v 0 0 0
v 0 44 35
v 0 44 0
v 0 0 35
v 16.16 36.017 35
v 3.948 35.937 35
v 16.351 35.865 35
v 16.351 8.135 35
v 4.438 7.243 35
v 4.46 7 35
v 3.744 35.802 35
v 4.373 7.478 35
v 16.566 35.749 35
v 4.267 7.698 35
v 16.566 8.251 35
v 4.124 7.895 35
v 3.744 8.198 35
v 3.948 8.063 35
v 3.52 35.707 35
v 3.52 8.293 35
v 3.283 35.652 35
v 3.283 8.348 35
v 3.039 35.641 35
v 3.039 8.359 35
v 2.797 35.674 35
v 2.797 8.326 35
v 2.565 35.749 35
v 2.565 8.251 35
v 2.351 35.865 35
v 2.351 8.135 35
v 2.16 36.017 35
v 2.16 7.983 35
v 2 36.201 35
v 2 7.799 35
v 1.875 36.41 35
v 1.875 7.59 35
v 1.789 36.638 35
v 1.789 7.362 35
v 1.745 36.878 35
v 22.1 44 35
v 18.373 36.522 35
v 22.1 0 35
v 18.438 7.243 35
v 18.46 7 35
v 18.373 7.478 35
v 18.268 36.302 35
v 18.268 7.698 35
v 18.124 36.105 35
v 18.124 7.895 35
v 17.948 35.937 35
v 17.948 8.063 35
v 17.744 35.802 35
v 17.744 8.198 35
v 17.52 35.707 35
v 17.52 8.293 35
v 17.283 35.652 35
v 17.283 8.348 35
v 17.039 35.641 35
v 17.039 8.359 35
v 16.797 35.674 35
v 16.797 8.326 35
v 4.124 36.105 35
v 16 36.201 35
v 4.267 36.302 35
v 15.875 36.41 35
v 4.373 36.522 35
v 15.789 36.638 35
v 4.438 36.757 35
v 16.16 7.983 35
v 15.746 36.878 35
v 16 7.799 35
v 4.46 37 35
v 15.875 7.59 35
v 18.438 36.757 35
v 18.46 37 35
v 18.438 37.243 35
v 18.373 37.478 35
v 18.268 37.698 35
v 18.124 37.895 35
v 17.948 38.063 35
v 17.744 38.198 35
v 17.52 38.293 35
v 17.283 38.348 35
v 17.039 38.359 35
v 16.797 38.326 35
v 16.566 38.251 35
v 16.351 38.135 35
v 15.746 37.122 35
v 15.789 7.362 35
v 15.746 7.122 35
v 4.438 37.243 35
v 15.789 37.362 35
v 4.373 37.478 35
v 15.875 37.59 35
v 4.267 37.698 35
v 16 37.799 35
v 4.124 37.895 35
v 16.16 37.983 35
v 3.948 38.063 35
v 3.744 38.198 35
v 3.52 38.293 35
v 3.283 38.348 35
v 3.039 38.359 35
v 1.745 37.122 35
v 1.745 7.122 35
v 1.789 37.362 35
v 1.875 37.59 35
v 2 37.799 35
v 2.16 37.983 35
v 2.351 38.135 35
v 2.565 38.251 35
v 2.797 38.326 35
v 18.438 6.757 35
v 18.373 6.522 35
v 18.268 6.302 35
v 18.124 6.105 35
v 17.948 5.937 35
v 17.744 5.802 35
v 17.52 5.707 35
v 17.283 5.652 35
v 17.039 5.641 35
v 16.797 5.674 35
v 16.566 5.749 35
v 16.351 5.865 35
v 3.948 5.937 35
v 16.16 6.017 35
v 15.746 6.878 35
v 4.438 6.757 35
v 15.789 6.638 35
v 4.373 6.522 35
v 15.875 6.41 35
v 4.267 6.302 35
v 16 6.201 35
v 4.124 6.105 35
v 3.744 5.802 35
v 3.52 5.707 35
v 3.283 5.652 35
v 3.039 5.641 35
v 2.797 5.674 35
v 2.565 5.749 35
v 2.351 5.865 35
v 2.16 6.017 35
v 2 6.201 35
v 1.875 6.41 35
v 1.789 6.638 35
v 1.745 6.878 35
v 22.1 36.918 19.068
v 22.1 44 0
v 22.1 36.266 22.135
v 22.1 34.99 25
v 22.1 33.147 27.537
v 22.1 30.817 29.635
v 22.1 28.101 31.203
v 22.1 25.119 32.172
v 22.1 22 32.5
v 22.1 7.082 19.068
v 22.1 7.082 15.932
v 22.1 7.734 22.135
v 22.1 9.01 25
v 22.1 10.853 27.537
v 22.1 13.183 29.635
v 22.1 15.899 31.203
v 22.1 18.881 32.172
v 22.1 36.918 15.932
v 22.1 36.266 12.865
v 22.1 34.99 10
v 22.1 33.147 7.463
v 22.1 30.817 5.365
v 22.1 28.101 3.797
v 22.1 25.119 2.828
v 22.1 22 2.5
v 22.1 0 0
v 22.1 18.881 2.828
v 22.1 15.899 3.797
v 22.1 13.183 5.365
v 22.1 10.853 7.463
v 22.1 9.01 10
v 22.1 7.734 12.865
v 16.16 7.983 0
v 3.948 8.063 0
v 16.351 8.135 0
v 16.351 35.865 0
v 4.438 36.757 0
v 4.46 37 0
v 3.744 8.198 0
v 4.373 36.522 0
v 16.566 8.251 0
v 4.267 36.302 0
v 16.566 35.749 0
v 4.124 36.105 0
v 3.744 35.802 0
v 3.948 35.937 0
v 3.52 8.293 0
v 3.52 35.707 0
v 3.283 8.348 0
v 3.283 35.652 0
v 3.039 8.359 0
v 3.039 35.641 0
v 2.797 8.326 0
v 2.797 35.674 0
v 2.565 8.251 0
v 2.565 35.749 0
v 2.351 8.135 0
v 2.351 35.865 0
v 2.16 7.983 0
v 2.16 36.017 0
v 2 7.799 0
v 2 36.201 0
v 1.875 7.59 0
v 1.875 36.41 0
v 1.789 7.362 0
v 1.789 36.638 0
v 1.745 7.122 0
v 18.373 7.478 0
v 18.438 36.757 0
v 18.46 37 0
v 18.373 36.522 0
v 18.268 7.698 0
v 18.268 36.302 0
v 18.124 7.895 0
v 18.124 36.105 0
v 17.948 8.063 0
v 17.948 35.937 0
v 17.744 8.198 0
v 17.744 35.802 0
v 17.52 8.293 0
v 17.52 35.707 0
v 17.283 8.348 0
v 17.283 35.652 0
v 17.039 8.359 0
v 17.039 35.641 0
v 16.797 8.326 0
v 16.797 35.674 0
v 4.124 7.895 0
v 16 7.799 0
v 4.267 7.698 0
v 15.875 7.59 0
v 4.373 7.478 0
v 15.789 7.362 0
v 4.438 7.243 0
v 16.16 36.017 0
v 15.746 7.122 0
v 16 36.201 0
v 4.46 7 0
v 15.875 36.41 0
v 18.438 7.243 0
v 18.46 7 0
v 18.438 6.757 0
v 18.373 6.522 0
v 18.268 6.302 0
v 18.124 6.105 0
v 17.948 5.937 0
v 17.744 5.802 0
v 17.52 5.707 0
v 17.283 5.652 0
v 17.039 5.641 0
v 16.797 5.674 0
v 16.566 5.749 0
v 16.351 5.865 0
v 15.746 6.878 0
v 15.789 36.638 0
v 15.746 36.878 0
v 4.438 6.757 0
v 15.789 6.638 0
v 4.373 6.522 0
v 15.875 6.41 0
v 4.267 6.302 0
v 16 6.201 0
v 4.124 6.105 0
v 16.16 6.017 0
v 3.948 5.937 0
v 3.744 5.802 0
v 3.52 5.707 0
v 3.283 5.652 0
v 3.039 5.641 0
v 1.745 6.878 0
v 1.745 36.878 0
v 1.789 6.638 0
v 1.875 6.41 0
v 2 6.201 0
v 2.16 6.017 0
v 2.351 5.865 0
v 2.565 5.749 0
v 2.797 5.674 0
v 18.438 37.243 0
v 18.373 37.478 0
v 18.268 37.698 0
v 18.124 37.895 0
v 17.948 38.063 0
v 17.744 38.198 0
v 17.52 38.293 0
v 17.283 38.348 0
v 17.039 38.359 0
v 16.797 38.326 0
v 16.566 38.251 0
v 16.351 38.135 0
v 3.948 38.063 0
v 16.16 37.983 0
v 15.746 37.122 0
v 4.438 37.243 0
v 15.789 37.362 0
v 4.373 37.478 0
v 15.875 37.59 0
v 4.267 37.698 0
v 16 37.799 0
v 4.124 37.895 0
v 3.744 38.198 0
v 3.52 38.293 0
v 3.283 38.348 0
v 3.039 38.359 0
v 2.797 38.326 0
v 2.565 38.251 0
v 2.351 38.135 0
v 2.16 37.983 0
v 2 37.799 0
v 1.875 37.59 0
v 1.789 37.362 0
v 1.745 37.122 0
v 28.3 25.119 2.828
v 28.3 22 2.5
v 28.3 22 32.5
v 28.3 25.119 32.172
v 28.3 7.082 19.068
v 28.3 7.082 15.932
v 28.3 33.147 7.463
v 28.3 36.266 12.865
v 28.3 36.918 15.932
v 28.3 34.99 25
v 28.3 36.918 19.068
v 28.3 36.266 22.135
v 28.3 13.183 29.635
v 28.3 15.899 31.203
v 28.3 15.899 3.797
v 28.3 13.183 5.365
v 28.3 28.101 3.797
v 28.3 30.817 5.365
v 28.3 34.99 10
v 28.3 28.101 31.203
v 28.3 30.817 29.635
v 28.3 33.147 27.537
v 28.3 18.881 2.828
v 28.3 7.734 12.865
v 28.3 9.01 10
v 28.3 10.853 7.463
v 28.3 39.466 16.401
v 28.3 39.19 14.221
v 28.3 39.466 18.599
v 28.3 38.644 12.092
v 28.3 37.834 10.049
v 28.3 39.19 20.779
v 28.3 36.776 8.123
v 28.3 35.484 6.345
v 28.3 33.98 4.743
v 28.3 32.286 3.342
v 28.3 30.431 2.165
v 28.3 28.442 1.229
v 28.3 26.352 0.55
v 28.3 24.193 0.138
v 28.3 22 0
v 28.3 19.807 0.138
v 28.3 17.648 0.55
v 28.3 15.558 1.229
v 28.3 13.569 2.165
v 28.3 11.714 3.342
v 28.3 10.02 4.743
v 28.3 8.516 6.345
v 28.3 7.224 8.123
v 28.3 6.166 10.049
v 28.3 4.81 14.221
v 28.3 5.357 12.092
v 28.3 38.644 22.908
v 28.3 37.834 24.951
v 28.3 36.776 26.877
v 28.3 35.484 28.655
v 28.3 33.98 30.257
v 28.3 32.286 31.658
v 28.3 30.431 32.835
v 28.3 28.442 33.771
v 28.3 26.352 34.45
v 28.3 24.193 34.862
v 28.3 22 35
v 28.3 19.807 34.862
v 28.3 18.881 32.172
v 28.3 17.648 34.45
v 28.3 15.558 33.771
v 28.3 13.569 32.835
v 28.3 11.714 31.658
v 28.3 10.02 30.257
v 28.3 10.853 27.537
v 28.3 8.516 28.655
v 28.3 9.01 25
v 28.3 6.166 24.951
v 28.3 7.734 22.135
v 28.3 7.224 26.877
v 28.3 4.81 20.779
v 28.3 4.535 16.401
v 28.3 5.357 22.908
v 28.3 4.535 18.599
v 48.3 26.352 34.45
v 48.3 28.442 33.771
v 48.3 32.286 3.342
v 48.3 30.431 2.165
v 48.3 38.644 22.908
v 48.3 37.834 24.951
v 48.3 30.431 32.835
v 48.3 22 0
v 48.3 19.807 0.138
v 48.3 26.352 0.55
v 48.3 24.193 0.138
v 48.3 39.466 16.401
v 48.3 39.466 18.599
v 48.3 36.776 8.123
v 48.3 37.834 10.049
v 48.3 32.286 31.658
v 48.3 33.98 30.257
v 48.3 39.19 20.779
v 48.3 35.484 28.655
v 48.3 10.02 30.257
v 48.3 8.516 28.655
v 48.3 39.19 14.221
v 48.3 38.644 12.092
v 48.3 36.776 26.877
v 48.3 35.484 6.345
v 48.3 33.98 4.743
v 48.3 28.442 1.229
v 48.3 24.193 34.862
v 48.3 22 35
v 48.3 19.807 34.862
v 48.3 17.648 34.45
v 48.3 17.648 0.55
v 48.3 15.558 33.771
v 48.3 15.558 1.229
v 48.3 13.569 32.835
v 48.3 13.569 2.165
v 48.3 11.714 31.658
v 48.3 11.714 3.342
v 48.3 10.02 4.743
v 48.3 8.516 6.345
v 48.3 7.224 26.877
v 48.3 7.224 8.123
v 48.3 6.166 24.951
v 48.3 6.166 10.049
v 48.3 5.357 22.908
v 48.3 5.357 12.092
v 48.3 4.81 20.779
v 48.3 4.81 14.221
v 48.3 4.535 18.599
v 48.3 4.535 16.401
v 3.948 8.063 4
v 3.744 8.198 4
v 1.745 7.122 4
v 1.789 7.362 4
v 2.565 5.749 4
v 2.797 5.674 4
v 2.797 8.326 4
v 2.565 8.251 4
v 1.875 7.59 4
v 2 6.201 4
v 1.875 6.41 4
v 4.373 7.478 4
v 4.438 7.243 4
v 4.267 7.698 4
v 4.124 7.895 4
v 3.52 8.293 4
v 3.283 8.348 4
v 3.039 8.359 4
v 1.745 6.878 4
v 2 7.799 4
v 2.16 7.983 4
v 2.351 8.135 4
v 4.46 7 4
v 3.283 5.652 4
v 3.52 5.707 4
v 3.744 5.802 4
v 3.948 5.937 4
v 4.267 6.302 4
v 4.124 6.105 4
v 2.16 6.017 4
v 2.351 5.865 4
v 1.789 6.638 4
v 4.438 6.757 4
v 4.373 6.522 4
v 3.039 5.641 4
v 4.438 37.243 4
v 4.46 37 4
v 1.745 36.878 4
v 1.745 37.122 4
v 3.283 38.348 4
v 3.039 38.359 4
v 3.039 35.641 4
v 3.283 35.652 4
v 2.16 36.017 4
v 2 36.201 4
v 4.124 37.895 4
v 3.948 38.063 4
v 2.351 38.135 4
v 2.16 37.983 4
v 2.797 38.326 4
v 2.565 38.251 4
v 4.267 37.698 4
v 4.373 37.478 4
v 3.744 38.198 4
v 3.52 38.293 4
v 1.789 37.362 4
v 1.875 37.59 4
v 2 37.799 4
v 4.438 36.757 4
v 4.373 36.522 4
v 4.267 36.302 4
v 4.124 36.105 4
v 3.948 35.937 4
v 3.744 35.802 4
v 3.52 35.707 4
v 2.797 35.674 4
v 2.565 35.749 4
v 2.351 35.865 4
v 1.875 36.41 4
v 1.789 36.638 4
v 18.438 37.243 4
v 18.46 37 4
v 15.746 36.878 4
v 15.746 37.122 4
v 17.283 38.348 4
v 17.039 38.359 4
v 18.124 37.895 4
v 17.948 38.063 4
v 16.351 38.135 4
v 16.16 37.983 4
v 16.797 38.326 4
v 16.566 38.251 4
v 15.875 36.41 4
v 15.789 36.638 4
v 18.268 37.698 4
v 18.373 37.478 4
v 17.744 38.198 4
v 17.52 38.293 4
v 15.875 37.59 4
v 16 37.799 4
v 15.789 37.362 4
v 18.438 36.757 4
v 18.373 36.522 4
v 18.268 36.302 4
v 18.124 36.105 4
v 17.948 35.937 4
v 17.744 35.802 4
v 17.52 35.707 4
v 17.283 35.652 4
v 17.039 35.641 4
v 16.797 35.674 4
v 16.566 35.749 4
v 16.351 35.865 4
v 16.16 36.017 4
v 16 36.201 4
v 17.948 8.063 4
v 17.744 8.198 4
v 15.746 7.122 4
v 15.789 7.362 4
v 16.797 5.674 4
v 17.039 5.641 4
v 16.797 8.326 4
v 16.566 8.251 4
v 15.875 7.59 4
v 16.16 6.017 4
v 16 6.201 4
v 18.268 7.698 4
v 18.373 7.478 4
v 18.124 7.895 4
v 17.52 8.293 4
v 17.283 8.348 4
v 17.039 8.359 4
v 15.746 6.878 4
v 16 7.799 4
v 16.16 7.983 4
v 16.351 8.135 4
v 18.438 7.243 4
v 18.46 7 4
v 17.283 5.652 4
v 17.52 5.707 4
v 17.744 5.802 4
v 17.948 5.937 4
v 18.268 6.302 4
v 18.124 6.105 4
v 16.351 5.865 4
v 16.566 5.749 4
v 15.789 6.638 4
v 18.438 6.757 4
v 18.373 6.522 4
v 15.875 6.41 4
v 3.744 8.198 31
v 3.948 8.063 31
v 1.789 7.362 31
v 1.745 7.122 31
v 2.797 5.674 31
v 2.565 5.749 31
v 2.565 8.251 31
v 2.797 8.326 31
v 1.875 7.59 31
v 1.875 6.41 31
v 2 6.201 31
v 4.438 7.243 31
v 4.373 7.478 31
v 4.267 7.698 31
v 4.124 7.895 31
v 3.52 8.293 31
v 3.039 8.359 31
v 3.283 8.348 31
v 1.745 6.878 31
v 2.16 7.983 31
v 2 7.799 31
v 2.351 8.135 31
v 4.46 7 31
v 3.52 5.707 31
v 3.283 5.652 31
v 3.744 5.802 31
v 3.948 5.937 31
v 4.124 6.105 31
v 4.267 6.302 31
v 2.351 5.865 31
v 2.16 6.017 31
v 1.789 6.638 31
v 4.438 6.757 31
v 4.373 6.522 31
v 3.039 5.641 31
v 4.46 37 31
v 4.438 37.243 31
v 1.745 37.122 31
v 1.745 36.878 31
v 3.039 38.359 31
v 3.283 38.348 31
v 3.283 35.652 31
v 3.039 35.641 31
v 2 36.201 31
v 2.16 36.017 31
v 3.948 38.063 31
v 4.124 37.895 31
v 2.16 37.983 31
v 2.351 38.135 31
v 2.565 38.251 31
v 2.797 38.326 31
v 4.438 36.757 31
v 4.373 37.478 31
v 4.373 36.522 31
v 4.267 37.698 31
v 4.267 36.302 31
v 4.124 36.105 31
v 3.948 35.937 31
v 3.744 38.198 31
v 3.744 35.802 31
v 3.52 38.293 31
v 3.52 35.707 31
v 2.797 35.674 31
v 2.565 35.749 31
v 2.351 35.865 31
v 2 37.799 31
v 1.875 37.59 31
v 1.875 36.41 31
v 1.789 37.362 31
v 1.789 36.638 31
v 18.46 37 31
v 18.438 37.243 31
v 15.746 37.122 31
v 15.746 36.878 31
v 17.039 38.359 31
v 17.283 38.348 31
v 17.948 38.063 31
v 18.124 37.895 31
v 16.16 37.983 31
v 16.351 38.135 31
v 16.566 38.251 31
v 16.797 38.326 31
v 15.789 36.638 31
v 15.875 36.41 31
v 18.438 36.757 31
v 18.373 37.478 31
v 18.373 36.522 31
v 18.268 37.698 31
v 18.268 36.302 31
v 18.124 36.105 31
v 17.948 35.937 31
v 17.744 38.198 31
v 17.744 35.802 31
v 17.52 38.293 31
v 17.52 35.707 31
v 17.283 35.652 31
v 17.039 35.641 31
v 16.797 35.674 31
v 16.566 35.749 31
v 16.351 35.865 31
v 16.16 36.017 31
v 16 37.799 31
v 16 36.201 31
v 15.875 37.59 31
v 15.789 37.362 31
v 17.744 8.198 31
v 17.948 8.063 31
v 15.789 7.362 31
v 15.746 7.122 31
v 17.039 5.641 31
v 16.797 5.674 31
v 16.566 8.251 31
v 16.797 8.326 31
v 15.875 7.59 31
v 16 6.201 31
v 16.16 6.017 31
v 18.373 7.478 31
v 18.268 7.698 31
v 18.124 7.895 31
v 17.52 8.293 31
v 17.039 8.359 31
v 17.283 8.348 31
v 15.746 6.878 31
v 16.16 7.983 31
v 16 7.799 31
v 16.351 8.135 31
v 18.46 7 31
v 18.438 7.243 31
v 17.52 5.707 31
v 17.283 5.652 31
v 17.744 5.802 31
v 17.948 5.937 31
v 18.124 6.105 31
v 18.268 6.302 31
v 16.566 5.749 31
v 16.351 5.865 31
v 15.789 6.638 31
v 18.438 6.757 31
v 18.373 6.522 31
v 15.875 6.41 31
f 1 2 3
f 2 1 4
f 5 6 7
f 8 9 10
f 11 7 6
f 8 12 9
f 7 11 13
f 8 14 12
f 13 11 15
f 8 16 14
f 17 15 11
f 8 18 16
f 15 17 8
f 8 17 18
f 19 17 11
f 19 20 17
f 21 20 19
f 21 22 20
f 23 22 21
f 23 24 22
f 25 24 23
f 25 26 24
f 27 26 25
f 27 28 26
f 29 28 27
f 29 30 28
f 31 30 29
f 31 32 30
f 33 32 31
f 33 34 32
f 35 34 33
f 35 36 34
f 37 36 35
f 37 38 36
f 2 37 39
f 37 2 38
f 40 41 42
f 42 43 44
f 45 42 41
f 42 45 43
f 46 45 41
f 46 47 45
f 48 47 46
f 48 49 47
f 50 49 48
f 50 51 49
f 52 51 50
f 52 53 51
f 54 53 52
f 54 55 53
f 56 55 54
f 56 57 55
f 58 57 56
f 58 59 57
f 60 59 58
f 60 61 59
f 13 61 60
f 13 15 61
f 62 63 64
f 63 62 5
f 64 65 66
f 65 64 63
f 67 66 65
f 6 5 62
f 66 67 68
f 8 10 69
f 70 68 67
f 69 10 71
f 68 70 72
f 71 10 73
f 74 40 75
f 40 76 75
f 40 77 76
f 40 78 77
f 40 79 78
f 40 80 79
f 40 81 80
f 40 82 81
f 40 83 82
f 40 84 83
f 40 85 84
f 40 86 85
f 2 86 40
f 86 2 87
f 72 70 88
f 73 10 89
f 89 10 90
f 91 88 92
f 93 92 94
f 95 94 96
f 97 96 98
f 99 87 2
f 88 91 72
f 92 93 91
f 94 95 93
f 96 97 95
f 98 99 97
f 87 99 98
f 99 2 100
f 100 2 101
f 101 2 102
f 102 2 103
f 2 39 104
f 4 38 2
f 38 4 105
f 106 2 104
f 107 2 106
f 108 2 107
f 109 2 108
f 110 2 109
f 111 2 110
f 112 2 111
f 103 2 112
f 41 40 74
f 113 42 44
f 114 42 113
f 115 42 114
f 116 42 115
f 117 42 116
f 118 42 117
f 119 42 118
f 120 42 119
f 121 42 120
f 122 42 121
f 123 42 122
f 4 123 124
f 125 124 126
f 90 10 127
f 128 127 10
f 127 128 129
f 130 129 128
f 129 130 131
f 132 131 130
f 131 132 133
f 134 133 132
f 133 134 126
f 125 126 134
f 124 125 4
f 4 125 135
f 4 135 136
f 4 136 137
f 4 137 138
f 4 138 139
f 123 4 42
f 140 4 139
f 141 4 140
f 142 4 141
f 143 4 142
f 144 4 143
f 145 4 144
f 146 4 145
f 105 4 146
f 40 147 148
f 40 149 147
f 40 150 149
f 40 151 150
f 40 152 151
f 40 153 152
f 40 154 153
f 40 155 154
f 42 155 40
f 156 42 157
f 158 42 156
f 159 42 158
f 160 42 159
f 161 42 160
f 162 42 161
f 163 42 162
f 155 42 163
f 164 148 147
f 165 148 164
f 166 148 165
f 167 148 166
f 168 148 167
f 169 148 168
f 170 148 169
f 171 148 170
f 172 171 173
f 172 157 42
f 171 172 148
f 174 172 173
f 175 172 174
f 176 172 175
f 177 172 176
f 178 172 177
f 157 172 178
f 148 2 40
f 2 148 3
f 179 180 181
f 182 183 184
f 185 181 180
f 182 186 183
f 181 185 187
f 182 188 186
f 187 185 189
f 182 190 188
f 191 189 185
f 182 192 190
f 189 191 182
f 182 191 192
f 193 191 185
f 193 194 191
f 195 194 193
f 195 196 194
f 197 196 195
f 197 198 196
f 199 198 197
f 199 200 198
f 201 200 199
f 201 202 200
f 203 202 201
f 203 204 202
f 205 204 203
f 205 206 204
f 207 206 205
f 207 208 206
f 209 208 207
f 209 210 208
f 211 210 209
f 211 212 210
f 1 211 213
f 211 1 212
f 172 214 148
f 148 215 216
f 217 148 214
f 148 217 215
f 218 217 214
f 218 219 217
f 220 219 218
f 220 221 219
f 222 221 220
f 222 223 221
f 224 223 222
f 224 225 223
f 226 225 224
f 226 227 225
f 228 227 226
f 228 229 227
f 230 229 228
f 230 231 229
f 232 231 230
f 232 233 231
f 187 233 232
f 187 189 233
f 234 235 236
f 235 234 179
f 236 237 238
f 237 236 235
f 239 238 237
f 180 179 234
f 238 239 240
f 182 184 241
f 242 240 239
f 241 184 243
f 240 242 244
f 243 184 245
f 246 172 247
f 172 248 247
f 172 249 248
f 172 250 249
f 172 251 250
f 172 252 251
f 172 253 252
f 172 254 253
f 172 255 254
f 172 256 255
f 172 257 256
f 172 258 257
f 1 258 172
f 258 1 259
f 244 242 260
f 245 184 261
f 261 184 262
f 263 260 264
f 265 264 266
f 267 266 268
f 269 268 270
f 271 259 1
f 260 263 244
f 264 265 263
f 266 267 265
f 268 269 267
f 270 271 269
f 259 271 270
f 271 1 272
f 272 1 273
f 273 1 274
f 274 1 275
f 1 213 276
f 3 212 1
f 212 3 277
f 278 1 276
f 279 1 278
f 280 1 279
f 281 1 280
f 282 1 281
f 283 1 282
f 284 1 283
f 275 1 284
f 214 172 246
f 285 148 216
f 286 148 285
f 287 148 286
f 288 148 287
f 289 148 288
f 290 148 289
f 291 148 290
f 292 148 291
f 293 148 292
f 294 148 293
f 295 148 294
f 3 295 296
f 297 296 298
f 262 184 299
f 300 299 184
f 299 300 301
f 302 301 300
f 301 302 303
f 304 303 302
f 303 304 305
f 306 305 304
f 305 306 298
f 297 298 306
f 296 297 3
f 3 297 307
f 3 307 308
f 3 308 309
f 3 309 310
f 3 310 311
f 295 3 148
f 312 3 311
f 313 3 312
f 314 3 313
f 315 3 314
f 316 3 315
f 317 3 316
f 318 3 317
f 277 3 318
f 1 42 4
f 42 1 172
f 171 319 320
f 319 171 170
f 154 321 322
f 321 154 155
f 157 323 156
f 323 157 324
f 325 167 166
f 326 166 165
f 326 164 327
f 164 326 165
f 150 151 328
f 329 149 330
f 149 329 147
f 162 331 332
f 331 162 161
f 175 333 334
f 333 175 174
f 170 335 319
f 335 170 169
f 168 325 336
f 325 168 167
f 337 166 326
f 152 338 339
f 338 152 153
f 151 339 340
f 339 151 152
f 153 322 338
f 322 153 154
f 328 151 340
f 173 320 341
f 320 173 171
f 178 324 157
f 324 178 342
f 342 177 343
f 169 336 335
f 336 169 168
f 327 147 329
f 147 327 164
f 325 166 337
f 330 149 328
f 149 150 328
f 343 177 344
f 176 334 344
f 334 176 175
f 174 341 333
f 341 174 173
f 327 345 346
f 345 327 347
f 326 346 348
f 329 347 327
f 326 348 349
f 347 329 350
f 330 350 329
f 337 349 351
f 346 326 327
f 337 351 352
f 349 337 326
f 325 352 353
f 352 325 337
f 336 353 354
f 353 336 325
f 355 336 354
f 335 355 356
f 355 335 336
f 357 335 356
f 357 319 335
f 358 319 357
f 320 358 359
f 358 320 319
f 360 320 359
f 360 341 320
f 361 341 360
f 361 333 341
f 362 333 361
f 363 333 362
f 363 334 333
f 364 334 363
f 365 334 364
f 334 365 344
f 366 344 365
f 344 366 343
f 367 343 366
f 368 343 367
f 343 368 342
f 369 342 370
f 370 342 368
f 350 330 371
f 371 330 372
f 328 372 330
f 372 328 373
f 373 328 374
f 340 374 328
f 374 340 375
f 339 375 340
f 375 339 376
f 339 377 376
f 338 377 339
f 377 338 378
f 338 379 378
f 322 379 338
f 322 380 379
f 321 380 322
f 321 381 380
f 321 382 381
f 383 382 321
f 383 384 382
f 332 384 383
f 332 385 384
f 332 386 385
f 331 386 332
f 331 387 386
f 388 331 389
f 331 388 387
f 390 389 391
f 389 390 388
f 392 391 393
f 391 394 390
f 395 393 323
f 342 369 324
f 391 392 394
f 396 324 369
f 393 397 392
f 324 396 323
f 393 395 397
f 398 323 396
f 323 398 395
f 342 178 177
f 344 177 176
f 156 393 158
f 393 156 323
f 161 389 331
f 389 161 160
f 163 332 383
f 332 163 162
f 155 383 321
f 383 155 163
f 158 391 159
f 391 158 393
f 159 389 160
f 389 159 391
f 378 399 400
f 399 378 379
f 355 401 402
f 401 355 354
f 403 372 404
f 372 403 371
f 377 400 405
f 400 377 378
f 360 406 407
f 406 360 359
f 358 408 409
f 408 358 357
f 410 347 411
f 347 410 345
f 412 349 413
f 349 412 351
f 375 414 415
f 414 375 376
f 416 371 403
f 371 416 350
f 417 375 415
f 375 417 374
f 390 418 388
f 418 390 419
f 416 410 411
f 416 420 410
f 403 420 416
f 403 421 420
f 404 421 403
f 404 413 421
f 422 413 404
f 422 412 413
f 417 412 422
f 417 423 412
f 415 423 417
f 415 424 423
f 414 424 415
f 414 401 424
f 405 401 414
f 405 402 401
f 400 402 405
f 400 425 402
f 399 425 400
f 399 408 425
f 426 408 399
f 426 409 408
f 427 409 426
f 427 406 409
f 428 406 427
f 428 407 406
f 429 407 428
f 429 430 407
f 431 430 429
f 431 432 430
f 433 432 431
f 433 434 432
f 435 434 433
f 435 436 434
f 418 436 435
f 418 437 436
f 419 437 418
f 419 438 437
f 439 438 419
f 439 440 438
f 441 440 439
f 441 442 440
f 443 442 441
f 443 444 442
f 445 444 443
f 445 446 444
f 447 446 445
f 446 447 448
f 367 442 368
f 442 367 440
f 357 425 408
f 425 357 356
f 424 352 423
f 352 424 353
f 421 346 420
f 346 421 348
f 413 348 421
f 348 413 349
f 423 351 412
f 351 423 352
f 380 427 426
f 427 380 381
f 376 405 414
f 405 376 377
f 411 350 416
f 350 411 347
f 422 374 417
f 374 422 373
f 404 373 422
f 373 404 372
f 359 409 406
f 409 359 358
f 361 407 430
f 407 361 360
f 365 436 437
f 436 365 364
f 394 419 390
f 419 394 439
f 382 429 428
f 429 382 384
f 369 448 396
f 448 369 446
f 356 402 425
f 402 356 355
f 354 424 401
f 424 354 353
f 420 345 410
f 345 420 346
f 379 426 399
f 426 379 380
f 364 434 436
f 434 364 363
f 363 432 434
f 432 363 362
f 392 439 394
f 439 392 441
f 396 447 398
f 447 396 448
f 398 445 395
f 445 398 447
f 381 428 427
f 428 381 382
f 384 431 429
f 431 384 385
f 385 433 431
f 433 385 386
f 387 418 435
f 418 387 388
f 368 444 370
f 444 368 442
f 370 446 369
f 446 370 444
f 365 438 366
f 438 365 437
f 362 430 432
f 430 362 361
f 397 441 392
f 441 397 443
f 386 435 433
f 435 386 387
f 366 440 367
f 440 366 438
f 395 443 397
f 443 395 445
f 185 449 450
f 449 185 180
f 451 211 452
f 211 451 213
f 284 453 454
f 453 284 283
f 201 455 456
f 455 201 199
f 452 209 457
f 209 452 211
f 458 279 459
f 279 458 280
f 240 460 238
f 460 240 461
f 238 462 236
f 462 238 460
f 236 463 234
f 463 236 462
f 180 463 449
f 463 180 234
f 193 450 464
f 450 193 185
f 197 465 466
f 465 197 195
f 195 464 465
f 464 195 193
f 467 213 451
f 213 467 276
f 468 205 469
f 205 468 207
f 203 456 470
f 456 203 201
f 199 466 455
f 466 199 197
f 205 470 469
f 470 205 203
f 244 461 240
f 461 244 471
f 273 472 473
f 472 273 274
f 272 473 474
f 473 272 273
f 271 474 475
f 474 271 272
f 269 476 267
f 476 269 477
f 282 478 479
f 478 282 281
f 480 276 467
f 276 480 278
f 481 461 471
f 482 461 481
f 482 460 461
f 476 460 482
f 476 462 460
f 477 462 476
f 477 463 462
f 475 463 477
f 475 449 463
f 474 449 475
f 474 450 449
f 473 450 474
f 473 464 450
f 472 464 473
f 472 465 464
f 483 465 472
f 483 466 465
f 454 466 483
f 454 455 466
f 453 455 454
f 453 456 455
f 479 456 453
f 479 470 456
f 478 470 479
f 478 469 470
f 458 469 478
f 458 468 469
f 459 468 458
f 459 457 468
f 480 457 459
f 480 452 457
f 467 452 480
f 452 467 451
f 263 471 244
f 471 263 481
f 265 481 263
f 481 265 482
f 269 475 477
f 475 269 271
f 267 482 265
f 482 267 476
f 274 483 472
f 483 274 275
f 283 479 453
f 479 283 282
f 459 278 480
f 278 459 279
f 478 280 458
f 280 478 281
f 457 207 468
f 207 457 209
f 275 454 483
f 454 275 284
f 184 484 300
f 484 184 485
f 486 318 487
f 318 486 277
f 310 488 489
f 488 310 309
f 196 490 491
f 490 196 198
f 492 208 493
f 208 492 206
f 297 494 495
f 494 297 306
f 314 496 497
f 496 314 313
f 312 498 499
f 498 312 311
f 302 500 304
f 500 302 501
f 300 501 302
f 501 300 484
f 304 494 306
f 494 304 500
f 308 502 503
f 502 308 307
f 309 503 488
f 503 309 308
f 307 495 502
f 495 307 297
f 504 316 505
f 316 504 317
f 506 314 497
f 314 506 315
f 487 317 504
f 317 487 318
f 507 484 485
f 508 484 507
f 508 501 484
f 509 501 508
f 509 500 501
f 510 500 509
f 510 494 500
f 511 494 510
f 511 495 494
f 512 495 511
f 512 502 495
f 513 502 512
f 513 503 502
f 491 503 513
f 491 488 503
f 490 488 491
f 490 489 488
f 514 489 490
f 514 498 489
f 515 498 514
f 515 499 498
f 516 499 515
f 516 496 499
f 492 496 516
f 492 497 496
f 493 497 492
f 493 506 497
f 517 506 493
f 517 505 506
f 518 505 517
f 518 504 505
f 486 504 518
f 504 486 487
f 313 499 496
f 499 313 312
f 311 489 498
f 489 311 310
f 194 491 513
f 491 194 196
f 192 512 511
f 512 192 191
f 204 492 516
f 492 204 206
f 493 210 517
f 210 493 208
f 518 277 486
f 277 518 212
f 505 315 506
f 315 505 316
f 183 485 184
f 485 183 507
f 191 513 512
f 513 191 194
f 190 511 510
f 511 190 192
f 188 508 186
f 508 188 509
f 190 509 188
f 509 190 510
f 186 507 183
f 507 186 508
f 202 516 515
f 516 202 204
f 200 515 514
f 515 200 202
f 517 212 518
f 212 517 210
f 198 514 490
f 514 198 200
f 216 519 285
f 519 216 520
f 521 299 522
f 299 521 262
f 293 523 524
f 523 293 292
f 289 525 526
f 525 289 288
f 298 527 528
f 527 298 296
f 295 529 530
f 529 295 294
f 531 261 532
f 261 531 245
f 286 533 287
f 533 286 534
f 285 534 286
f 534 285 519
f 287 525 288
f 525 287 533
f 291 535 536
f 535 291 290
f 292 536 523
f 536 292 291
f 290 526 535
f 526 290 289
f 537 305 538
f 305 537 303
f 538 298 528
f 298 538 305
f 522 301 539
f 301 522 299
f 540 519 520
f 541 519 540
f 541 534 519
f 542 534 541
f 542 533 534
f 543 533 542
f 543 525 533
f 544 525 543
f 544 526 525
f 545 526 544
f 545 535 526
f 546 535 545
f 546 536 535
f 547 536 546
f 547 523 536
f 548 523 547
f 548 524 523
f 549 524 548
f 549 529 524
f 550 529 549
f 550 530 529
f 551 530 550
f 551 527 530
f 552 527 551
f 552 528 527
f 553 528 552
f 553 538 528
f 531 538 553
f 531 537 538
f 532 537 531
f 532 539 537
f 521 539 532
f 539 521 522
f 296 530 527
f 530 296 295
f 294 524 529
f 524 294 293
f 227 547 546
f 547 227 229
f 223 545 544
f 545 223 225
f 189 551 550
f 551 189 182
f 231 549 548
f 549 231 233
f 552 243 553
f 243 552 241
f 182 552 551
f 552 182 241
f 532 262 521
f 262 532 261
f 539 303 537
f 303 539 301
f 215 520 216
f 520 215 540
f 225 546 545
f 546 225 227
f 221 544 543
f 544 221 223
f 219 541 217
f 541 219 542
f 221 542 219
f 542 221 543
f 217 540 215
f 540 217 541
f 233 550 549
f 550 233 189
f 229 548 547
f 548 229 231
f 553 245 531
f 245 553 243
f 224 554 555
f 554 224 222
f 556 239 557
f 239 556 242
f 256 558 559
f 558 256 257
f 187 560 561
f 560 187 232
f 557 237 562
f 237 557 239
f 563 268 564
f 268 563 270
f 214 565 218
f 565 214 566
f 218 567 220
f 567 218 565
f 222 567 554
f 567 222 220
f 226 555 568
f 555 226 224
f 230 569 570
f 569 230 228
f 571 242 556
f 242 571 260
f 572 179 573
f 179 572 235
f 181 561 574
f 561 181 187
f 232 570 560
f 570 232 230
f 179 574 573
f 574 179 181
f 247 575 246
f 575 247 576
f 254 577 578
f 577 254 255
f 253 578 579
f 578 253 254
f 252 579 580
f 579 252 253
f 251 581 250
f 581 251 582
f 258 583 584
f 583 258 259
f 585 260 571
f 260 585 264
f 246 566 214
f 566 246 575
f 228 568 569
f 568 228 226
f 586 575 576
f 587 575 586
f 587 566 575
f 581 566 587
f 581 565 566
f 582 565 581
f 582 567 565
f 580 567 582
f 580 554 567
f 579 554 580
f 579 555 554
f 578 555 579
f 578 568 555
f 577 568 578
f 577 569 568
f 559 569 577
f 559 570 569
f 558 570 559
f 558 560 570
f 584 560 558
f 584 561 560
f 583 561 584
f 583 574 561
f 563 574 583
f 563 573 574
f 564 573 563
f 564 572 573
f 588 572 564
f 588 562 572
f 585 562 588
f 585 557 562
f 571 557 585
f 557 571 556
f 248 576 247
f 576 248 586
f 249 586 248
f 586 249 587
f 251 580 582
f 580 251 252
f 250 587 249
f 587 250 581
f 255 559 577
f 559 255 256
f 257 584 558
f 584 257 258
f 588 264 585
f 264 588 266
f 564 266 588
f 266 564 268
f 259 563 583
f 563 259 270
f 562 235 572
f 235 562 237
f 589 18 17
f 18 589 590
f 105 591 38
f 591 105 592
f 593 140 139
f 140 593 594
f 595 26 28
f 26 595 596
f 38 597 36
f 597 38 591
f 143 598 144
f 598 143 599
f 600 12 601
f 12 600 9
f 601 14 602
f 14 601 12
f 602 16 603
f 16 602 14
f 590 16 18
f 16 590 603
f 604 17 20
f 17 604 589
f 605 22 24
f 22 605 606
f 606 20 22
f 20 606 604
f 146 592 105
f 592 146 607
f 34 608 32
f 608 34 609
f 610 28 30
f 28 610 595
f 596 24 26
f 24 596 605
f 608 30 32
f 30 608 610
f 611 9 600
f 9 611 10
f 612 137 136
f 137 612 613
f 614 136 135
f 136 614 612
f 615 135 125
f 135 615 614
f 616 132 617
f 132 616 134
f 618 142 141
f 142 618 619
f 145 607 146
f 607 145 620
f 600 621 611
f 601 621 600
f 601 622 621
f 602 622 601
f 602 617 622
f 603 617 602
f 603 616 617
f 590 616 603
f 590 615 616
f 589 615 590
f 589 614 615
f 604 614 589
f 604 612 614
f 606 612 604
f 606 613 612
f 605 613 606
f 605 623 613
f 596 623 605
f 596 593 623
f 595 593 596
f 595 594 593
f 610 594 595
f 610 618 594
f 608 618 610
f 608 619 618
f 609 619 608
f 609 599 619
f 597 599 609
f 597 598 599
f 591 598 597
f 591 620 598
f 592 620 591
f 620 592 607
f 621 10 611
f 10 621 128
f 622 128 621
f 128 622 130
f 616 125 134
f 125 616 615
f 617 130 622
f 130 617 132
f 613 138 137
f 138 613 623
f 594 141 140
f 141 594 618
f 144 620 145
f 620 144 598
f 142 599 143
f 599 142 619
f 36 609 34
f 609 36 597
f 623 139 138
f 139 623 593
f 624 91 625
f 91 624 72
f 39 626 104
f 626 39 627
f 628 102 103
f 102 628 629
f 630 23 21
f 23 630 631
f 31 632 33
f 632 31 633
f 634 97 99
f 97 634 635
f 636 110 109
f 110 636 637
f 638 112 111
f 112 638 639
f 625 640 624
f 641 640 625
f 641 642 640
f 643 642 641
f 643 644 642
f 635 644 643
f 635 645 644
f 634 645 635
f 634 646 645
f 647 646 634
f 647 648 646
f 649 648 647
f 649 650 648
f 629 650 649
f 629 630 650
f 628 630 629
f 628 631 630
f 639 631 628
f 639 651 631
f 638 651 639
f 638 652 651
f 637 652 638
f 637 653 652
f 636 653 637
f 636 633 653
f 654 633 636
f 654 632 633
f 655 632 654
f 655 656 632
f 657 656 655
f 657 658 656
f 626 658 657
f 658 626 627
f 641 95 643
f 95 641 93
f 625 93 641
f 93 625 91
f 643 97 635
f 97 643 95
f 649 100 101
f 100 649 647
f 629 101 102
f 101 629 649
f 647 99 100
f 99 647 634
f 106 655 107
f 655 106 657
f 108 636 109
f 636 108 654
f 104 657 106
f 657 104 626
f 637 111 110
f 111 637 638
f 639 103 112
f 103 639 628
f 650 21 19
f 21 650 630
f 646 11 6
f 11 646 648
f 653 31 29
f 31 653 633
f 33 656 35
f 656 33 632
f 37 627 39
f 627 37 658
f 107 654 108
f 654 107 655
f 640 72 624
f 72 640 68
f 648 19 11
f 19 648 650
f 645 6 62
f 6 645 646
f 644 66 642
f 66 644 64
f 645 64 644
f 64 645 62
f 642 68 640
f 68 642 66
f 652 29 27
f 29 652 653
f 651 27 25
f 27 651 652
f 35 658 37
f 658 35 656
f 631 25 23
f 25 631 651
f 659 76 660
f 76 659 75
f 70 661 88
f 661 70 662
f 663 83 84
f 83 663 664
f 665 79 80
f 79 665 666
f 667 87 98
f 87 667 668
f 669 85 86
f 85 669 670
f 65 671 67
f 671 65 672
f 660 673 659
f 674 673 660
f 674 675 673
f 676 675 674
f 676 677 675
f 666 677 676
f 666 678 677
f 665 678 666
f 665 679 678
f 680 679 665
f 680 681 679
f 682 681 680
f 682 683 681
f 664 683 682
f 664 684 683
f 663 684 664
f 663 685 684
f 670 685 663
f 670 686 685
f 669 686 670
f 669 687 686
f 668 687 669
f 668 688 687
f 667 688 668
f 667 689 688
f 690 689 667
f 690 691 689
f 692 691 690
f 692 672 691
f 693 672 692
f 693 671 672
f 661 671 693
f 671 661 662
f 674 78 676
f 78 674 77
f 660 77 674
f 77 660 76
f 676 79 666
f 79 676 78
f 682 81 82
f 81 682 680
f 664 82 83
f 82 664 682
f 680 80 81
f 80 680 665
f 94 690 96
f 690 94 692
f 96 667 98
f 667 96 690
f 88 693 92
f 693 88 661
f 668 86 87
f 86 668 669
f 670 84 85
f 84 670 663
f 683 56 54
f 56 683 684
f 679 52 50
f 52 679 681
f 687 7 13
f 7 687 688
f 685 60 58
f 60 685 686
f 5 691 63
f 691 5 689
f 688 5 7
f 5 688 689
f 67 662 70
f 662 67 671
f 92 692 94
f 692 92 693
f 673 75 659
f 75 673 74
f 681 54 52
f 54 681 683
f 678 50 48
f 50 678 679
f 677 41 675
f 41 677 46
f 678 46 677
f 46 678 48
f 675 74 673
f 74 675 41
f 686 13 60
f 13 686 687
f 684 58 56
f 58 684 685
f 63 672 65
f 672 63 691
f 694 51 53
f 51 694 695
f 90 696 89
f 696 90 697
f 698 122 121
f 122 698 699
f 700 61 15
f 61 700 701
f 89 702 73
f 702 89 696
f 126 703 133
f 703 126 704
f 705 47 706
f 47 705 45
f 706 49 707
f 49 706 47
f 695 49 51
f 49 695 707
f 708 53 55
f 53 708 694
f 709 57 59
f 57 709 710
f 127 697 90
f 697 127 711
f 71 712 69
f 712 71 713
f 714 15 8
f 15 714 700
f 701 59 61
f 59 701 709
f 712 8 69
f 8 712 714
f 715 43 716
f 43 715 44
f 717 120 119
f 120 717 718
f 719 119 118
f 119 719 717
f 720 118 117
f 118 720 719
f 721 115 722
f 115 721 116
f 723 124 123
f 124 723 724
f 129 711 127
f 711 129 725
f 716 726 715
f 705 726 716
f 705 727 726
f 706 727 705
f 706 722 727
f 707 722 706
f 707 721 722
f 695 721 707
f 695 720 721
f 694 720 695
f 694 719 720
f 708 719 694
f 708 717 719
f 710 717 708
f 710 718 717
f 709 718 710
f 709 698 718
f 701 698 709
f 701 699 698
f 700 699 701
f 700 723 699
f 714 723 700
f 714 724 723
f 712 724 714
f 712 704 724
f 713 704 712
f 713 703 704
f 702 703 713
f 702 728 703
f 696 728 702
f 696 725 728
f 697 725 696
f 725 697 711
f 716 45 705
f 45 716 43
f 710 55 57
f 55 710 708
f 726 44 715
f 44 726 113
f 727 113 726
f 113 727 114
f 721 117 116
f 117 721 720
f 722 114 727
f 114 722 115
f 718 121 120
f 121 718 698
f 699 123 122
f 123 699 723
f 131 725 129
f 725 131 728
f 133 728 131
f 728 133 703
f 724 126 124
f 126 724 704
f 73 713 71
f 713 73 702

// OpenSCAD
module camera_body()
{
    union() {
        color([0.35, 0.35, 0.35])
        cube([22.1, 44.0, 35.0]);

        // lens mount
        color([0.8, 0.8, 0.8])
        translate([22.1, 44.0 / 2, 35.0 / 2])
        rotate([0, 90, 0])
        cylinder(r = 15.0, h = 6.2);
    }
}

module lens(width, length)
{
    $fn = 50;
    // fake lens
    color([0.5, 0.5, 0.5])
    cylinder(r = width / 2, h = length);
}

module mounting_holes()
{
    $fn = 35;
    x1 = 0.0;
    x2 = 14.0;
    y1 = 0.0;
    y2 = 30.0;
 
    depth = 4.0;
    diam = 2.72;

    translate([x1, y1, 0])
    cylinder(h = depth, r = diam / 2);

    translate([x1, y2, 0])
    cylinder(h = depth, r = diam / 2);

    translate([x2, y2, 0])
    cylinder(h = depth, r = diam / 2);

    translate([x2, y1, 0])
    cylinder(h = depth, r = diam / 2);
}

module pg_cameleon3()
{
    difference() {
        union() {
            camera_body();
            translate([22.1 + 6.2, 44.0 / 2, 35.0 / 2])
            rotate([0, 90, 0])
            lens(35, 20);
        }

        translate([3.1, 7.0, 0.0])
        mounting_holes();

        translate([3.1, 7.0, 35.0 - 4.0])
        mounting_holes();
    }
}

pg_cameleon3();
